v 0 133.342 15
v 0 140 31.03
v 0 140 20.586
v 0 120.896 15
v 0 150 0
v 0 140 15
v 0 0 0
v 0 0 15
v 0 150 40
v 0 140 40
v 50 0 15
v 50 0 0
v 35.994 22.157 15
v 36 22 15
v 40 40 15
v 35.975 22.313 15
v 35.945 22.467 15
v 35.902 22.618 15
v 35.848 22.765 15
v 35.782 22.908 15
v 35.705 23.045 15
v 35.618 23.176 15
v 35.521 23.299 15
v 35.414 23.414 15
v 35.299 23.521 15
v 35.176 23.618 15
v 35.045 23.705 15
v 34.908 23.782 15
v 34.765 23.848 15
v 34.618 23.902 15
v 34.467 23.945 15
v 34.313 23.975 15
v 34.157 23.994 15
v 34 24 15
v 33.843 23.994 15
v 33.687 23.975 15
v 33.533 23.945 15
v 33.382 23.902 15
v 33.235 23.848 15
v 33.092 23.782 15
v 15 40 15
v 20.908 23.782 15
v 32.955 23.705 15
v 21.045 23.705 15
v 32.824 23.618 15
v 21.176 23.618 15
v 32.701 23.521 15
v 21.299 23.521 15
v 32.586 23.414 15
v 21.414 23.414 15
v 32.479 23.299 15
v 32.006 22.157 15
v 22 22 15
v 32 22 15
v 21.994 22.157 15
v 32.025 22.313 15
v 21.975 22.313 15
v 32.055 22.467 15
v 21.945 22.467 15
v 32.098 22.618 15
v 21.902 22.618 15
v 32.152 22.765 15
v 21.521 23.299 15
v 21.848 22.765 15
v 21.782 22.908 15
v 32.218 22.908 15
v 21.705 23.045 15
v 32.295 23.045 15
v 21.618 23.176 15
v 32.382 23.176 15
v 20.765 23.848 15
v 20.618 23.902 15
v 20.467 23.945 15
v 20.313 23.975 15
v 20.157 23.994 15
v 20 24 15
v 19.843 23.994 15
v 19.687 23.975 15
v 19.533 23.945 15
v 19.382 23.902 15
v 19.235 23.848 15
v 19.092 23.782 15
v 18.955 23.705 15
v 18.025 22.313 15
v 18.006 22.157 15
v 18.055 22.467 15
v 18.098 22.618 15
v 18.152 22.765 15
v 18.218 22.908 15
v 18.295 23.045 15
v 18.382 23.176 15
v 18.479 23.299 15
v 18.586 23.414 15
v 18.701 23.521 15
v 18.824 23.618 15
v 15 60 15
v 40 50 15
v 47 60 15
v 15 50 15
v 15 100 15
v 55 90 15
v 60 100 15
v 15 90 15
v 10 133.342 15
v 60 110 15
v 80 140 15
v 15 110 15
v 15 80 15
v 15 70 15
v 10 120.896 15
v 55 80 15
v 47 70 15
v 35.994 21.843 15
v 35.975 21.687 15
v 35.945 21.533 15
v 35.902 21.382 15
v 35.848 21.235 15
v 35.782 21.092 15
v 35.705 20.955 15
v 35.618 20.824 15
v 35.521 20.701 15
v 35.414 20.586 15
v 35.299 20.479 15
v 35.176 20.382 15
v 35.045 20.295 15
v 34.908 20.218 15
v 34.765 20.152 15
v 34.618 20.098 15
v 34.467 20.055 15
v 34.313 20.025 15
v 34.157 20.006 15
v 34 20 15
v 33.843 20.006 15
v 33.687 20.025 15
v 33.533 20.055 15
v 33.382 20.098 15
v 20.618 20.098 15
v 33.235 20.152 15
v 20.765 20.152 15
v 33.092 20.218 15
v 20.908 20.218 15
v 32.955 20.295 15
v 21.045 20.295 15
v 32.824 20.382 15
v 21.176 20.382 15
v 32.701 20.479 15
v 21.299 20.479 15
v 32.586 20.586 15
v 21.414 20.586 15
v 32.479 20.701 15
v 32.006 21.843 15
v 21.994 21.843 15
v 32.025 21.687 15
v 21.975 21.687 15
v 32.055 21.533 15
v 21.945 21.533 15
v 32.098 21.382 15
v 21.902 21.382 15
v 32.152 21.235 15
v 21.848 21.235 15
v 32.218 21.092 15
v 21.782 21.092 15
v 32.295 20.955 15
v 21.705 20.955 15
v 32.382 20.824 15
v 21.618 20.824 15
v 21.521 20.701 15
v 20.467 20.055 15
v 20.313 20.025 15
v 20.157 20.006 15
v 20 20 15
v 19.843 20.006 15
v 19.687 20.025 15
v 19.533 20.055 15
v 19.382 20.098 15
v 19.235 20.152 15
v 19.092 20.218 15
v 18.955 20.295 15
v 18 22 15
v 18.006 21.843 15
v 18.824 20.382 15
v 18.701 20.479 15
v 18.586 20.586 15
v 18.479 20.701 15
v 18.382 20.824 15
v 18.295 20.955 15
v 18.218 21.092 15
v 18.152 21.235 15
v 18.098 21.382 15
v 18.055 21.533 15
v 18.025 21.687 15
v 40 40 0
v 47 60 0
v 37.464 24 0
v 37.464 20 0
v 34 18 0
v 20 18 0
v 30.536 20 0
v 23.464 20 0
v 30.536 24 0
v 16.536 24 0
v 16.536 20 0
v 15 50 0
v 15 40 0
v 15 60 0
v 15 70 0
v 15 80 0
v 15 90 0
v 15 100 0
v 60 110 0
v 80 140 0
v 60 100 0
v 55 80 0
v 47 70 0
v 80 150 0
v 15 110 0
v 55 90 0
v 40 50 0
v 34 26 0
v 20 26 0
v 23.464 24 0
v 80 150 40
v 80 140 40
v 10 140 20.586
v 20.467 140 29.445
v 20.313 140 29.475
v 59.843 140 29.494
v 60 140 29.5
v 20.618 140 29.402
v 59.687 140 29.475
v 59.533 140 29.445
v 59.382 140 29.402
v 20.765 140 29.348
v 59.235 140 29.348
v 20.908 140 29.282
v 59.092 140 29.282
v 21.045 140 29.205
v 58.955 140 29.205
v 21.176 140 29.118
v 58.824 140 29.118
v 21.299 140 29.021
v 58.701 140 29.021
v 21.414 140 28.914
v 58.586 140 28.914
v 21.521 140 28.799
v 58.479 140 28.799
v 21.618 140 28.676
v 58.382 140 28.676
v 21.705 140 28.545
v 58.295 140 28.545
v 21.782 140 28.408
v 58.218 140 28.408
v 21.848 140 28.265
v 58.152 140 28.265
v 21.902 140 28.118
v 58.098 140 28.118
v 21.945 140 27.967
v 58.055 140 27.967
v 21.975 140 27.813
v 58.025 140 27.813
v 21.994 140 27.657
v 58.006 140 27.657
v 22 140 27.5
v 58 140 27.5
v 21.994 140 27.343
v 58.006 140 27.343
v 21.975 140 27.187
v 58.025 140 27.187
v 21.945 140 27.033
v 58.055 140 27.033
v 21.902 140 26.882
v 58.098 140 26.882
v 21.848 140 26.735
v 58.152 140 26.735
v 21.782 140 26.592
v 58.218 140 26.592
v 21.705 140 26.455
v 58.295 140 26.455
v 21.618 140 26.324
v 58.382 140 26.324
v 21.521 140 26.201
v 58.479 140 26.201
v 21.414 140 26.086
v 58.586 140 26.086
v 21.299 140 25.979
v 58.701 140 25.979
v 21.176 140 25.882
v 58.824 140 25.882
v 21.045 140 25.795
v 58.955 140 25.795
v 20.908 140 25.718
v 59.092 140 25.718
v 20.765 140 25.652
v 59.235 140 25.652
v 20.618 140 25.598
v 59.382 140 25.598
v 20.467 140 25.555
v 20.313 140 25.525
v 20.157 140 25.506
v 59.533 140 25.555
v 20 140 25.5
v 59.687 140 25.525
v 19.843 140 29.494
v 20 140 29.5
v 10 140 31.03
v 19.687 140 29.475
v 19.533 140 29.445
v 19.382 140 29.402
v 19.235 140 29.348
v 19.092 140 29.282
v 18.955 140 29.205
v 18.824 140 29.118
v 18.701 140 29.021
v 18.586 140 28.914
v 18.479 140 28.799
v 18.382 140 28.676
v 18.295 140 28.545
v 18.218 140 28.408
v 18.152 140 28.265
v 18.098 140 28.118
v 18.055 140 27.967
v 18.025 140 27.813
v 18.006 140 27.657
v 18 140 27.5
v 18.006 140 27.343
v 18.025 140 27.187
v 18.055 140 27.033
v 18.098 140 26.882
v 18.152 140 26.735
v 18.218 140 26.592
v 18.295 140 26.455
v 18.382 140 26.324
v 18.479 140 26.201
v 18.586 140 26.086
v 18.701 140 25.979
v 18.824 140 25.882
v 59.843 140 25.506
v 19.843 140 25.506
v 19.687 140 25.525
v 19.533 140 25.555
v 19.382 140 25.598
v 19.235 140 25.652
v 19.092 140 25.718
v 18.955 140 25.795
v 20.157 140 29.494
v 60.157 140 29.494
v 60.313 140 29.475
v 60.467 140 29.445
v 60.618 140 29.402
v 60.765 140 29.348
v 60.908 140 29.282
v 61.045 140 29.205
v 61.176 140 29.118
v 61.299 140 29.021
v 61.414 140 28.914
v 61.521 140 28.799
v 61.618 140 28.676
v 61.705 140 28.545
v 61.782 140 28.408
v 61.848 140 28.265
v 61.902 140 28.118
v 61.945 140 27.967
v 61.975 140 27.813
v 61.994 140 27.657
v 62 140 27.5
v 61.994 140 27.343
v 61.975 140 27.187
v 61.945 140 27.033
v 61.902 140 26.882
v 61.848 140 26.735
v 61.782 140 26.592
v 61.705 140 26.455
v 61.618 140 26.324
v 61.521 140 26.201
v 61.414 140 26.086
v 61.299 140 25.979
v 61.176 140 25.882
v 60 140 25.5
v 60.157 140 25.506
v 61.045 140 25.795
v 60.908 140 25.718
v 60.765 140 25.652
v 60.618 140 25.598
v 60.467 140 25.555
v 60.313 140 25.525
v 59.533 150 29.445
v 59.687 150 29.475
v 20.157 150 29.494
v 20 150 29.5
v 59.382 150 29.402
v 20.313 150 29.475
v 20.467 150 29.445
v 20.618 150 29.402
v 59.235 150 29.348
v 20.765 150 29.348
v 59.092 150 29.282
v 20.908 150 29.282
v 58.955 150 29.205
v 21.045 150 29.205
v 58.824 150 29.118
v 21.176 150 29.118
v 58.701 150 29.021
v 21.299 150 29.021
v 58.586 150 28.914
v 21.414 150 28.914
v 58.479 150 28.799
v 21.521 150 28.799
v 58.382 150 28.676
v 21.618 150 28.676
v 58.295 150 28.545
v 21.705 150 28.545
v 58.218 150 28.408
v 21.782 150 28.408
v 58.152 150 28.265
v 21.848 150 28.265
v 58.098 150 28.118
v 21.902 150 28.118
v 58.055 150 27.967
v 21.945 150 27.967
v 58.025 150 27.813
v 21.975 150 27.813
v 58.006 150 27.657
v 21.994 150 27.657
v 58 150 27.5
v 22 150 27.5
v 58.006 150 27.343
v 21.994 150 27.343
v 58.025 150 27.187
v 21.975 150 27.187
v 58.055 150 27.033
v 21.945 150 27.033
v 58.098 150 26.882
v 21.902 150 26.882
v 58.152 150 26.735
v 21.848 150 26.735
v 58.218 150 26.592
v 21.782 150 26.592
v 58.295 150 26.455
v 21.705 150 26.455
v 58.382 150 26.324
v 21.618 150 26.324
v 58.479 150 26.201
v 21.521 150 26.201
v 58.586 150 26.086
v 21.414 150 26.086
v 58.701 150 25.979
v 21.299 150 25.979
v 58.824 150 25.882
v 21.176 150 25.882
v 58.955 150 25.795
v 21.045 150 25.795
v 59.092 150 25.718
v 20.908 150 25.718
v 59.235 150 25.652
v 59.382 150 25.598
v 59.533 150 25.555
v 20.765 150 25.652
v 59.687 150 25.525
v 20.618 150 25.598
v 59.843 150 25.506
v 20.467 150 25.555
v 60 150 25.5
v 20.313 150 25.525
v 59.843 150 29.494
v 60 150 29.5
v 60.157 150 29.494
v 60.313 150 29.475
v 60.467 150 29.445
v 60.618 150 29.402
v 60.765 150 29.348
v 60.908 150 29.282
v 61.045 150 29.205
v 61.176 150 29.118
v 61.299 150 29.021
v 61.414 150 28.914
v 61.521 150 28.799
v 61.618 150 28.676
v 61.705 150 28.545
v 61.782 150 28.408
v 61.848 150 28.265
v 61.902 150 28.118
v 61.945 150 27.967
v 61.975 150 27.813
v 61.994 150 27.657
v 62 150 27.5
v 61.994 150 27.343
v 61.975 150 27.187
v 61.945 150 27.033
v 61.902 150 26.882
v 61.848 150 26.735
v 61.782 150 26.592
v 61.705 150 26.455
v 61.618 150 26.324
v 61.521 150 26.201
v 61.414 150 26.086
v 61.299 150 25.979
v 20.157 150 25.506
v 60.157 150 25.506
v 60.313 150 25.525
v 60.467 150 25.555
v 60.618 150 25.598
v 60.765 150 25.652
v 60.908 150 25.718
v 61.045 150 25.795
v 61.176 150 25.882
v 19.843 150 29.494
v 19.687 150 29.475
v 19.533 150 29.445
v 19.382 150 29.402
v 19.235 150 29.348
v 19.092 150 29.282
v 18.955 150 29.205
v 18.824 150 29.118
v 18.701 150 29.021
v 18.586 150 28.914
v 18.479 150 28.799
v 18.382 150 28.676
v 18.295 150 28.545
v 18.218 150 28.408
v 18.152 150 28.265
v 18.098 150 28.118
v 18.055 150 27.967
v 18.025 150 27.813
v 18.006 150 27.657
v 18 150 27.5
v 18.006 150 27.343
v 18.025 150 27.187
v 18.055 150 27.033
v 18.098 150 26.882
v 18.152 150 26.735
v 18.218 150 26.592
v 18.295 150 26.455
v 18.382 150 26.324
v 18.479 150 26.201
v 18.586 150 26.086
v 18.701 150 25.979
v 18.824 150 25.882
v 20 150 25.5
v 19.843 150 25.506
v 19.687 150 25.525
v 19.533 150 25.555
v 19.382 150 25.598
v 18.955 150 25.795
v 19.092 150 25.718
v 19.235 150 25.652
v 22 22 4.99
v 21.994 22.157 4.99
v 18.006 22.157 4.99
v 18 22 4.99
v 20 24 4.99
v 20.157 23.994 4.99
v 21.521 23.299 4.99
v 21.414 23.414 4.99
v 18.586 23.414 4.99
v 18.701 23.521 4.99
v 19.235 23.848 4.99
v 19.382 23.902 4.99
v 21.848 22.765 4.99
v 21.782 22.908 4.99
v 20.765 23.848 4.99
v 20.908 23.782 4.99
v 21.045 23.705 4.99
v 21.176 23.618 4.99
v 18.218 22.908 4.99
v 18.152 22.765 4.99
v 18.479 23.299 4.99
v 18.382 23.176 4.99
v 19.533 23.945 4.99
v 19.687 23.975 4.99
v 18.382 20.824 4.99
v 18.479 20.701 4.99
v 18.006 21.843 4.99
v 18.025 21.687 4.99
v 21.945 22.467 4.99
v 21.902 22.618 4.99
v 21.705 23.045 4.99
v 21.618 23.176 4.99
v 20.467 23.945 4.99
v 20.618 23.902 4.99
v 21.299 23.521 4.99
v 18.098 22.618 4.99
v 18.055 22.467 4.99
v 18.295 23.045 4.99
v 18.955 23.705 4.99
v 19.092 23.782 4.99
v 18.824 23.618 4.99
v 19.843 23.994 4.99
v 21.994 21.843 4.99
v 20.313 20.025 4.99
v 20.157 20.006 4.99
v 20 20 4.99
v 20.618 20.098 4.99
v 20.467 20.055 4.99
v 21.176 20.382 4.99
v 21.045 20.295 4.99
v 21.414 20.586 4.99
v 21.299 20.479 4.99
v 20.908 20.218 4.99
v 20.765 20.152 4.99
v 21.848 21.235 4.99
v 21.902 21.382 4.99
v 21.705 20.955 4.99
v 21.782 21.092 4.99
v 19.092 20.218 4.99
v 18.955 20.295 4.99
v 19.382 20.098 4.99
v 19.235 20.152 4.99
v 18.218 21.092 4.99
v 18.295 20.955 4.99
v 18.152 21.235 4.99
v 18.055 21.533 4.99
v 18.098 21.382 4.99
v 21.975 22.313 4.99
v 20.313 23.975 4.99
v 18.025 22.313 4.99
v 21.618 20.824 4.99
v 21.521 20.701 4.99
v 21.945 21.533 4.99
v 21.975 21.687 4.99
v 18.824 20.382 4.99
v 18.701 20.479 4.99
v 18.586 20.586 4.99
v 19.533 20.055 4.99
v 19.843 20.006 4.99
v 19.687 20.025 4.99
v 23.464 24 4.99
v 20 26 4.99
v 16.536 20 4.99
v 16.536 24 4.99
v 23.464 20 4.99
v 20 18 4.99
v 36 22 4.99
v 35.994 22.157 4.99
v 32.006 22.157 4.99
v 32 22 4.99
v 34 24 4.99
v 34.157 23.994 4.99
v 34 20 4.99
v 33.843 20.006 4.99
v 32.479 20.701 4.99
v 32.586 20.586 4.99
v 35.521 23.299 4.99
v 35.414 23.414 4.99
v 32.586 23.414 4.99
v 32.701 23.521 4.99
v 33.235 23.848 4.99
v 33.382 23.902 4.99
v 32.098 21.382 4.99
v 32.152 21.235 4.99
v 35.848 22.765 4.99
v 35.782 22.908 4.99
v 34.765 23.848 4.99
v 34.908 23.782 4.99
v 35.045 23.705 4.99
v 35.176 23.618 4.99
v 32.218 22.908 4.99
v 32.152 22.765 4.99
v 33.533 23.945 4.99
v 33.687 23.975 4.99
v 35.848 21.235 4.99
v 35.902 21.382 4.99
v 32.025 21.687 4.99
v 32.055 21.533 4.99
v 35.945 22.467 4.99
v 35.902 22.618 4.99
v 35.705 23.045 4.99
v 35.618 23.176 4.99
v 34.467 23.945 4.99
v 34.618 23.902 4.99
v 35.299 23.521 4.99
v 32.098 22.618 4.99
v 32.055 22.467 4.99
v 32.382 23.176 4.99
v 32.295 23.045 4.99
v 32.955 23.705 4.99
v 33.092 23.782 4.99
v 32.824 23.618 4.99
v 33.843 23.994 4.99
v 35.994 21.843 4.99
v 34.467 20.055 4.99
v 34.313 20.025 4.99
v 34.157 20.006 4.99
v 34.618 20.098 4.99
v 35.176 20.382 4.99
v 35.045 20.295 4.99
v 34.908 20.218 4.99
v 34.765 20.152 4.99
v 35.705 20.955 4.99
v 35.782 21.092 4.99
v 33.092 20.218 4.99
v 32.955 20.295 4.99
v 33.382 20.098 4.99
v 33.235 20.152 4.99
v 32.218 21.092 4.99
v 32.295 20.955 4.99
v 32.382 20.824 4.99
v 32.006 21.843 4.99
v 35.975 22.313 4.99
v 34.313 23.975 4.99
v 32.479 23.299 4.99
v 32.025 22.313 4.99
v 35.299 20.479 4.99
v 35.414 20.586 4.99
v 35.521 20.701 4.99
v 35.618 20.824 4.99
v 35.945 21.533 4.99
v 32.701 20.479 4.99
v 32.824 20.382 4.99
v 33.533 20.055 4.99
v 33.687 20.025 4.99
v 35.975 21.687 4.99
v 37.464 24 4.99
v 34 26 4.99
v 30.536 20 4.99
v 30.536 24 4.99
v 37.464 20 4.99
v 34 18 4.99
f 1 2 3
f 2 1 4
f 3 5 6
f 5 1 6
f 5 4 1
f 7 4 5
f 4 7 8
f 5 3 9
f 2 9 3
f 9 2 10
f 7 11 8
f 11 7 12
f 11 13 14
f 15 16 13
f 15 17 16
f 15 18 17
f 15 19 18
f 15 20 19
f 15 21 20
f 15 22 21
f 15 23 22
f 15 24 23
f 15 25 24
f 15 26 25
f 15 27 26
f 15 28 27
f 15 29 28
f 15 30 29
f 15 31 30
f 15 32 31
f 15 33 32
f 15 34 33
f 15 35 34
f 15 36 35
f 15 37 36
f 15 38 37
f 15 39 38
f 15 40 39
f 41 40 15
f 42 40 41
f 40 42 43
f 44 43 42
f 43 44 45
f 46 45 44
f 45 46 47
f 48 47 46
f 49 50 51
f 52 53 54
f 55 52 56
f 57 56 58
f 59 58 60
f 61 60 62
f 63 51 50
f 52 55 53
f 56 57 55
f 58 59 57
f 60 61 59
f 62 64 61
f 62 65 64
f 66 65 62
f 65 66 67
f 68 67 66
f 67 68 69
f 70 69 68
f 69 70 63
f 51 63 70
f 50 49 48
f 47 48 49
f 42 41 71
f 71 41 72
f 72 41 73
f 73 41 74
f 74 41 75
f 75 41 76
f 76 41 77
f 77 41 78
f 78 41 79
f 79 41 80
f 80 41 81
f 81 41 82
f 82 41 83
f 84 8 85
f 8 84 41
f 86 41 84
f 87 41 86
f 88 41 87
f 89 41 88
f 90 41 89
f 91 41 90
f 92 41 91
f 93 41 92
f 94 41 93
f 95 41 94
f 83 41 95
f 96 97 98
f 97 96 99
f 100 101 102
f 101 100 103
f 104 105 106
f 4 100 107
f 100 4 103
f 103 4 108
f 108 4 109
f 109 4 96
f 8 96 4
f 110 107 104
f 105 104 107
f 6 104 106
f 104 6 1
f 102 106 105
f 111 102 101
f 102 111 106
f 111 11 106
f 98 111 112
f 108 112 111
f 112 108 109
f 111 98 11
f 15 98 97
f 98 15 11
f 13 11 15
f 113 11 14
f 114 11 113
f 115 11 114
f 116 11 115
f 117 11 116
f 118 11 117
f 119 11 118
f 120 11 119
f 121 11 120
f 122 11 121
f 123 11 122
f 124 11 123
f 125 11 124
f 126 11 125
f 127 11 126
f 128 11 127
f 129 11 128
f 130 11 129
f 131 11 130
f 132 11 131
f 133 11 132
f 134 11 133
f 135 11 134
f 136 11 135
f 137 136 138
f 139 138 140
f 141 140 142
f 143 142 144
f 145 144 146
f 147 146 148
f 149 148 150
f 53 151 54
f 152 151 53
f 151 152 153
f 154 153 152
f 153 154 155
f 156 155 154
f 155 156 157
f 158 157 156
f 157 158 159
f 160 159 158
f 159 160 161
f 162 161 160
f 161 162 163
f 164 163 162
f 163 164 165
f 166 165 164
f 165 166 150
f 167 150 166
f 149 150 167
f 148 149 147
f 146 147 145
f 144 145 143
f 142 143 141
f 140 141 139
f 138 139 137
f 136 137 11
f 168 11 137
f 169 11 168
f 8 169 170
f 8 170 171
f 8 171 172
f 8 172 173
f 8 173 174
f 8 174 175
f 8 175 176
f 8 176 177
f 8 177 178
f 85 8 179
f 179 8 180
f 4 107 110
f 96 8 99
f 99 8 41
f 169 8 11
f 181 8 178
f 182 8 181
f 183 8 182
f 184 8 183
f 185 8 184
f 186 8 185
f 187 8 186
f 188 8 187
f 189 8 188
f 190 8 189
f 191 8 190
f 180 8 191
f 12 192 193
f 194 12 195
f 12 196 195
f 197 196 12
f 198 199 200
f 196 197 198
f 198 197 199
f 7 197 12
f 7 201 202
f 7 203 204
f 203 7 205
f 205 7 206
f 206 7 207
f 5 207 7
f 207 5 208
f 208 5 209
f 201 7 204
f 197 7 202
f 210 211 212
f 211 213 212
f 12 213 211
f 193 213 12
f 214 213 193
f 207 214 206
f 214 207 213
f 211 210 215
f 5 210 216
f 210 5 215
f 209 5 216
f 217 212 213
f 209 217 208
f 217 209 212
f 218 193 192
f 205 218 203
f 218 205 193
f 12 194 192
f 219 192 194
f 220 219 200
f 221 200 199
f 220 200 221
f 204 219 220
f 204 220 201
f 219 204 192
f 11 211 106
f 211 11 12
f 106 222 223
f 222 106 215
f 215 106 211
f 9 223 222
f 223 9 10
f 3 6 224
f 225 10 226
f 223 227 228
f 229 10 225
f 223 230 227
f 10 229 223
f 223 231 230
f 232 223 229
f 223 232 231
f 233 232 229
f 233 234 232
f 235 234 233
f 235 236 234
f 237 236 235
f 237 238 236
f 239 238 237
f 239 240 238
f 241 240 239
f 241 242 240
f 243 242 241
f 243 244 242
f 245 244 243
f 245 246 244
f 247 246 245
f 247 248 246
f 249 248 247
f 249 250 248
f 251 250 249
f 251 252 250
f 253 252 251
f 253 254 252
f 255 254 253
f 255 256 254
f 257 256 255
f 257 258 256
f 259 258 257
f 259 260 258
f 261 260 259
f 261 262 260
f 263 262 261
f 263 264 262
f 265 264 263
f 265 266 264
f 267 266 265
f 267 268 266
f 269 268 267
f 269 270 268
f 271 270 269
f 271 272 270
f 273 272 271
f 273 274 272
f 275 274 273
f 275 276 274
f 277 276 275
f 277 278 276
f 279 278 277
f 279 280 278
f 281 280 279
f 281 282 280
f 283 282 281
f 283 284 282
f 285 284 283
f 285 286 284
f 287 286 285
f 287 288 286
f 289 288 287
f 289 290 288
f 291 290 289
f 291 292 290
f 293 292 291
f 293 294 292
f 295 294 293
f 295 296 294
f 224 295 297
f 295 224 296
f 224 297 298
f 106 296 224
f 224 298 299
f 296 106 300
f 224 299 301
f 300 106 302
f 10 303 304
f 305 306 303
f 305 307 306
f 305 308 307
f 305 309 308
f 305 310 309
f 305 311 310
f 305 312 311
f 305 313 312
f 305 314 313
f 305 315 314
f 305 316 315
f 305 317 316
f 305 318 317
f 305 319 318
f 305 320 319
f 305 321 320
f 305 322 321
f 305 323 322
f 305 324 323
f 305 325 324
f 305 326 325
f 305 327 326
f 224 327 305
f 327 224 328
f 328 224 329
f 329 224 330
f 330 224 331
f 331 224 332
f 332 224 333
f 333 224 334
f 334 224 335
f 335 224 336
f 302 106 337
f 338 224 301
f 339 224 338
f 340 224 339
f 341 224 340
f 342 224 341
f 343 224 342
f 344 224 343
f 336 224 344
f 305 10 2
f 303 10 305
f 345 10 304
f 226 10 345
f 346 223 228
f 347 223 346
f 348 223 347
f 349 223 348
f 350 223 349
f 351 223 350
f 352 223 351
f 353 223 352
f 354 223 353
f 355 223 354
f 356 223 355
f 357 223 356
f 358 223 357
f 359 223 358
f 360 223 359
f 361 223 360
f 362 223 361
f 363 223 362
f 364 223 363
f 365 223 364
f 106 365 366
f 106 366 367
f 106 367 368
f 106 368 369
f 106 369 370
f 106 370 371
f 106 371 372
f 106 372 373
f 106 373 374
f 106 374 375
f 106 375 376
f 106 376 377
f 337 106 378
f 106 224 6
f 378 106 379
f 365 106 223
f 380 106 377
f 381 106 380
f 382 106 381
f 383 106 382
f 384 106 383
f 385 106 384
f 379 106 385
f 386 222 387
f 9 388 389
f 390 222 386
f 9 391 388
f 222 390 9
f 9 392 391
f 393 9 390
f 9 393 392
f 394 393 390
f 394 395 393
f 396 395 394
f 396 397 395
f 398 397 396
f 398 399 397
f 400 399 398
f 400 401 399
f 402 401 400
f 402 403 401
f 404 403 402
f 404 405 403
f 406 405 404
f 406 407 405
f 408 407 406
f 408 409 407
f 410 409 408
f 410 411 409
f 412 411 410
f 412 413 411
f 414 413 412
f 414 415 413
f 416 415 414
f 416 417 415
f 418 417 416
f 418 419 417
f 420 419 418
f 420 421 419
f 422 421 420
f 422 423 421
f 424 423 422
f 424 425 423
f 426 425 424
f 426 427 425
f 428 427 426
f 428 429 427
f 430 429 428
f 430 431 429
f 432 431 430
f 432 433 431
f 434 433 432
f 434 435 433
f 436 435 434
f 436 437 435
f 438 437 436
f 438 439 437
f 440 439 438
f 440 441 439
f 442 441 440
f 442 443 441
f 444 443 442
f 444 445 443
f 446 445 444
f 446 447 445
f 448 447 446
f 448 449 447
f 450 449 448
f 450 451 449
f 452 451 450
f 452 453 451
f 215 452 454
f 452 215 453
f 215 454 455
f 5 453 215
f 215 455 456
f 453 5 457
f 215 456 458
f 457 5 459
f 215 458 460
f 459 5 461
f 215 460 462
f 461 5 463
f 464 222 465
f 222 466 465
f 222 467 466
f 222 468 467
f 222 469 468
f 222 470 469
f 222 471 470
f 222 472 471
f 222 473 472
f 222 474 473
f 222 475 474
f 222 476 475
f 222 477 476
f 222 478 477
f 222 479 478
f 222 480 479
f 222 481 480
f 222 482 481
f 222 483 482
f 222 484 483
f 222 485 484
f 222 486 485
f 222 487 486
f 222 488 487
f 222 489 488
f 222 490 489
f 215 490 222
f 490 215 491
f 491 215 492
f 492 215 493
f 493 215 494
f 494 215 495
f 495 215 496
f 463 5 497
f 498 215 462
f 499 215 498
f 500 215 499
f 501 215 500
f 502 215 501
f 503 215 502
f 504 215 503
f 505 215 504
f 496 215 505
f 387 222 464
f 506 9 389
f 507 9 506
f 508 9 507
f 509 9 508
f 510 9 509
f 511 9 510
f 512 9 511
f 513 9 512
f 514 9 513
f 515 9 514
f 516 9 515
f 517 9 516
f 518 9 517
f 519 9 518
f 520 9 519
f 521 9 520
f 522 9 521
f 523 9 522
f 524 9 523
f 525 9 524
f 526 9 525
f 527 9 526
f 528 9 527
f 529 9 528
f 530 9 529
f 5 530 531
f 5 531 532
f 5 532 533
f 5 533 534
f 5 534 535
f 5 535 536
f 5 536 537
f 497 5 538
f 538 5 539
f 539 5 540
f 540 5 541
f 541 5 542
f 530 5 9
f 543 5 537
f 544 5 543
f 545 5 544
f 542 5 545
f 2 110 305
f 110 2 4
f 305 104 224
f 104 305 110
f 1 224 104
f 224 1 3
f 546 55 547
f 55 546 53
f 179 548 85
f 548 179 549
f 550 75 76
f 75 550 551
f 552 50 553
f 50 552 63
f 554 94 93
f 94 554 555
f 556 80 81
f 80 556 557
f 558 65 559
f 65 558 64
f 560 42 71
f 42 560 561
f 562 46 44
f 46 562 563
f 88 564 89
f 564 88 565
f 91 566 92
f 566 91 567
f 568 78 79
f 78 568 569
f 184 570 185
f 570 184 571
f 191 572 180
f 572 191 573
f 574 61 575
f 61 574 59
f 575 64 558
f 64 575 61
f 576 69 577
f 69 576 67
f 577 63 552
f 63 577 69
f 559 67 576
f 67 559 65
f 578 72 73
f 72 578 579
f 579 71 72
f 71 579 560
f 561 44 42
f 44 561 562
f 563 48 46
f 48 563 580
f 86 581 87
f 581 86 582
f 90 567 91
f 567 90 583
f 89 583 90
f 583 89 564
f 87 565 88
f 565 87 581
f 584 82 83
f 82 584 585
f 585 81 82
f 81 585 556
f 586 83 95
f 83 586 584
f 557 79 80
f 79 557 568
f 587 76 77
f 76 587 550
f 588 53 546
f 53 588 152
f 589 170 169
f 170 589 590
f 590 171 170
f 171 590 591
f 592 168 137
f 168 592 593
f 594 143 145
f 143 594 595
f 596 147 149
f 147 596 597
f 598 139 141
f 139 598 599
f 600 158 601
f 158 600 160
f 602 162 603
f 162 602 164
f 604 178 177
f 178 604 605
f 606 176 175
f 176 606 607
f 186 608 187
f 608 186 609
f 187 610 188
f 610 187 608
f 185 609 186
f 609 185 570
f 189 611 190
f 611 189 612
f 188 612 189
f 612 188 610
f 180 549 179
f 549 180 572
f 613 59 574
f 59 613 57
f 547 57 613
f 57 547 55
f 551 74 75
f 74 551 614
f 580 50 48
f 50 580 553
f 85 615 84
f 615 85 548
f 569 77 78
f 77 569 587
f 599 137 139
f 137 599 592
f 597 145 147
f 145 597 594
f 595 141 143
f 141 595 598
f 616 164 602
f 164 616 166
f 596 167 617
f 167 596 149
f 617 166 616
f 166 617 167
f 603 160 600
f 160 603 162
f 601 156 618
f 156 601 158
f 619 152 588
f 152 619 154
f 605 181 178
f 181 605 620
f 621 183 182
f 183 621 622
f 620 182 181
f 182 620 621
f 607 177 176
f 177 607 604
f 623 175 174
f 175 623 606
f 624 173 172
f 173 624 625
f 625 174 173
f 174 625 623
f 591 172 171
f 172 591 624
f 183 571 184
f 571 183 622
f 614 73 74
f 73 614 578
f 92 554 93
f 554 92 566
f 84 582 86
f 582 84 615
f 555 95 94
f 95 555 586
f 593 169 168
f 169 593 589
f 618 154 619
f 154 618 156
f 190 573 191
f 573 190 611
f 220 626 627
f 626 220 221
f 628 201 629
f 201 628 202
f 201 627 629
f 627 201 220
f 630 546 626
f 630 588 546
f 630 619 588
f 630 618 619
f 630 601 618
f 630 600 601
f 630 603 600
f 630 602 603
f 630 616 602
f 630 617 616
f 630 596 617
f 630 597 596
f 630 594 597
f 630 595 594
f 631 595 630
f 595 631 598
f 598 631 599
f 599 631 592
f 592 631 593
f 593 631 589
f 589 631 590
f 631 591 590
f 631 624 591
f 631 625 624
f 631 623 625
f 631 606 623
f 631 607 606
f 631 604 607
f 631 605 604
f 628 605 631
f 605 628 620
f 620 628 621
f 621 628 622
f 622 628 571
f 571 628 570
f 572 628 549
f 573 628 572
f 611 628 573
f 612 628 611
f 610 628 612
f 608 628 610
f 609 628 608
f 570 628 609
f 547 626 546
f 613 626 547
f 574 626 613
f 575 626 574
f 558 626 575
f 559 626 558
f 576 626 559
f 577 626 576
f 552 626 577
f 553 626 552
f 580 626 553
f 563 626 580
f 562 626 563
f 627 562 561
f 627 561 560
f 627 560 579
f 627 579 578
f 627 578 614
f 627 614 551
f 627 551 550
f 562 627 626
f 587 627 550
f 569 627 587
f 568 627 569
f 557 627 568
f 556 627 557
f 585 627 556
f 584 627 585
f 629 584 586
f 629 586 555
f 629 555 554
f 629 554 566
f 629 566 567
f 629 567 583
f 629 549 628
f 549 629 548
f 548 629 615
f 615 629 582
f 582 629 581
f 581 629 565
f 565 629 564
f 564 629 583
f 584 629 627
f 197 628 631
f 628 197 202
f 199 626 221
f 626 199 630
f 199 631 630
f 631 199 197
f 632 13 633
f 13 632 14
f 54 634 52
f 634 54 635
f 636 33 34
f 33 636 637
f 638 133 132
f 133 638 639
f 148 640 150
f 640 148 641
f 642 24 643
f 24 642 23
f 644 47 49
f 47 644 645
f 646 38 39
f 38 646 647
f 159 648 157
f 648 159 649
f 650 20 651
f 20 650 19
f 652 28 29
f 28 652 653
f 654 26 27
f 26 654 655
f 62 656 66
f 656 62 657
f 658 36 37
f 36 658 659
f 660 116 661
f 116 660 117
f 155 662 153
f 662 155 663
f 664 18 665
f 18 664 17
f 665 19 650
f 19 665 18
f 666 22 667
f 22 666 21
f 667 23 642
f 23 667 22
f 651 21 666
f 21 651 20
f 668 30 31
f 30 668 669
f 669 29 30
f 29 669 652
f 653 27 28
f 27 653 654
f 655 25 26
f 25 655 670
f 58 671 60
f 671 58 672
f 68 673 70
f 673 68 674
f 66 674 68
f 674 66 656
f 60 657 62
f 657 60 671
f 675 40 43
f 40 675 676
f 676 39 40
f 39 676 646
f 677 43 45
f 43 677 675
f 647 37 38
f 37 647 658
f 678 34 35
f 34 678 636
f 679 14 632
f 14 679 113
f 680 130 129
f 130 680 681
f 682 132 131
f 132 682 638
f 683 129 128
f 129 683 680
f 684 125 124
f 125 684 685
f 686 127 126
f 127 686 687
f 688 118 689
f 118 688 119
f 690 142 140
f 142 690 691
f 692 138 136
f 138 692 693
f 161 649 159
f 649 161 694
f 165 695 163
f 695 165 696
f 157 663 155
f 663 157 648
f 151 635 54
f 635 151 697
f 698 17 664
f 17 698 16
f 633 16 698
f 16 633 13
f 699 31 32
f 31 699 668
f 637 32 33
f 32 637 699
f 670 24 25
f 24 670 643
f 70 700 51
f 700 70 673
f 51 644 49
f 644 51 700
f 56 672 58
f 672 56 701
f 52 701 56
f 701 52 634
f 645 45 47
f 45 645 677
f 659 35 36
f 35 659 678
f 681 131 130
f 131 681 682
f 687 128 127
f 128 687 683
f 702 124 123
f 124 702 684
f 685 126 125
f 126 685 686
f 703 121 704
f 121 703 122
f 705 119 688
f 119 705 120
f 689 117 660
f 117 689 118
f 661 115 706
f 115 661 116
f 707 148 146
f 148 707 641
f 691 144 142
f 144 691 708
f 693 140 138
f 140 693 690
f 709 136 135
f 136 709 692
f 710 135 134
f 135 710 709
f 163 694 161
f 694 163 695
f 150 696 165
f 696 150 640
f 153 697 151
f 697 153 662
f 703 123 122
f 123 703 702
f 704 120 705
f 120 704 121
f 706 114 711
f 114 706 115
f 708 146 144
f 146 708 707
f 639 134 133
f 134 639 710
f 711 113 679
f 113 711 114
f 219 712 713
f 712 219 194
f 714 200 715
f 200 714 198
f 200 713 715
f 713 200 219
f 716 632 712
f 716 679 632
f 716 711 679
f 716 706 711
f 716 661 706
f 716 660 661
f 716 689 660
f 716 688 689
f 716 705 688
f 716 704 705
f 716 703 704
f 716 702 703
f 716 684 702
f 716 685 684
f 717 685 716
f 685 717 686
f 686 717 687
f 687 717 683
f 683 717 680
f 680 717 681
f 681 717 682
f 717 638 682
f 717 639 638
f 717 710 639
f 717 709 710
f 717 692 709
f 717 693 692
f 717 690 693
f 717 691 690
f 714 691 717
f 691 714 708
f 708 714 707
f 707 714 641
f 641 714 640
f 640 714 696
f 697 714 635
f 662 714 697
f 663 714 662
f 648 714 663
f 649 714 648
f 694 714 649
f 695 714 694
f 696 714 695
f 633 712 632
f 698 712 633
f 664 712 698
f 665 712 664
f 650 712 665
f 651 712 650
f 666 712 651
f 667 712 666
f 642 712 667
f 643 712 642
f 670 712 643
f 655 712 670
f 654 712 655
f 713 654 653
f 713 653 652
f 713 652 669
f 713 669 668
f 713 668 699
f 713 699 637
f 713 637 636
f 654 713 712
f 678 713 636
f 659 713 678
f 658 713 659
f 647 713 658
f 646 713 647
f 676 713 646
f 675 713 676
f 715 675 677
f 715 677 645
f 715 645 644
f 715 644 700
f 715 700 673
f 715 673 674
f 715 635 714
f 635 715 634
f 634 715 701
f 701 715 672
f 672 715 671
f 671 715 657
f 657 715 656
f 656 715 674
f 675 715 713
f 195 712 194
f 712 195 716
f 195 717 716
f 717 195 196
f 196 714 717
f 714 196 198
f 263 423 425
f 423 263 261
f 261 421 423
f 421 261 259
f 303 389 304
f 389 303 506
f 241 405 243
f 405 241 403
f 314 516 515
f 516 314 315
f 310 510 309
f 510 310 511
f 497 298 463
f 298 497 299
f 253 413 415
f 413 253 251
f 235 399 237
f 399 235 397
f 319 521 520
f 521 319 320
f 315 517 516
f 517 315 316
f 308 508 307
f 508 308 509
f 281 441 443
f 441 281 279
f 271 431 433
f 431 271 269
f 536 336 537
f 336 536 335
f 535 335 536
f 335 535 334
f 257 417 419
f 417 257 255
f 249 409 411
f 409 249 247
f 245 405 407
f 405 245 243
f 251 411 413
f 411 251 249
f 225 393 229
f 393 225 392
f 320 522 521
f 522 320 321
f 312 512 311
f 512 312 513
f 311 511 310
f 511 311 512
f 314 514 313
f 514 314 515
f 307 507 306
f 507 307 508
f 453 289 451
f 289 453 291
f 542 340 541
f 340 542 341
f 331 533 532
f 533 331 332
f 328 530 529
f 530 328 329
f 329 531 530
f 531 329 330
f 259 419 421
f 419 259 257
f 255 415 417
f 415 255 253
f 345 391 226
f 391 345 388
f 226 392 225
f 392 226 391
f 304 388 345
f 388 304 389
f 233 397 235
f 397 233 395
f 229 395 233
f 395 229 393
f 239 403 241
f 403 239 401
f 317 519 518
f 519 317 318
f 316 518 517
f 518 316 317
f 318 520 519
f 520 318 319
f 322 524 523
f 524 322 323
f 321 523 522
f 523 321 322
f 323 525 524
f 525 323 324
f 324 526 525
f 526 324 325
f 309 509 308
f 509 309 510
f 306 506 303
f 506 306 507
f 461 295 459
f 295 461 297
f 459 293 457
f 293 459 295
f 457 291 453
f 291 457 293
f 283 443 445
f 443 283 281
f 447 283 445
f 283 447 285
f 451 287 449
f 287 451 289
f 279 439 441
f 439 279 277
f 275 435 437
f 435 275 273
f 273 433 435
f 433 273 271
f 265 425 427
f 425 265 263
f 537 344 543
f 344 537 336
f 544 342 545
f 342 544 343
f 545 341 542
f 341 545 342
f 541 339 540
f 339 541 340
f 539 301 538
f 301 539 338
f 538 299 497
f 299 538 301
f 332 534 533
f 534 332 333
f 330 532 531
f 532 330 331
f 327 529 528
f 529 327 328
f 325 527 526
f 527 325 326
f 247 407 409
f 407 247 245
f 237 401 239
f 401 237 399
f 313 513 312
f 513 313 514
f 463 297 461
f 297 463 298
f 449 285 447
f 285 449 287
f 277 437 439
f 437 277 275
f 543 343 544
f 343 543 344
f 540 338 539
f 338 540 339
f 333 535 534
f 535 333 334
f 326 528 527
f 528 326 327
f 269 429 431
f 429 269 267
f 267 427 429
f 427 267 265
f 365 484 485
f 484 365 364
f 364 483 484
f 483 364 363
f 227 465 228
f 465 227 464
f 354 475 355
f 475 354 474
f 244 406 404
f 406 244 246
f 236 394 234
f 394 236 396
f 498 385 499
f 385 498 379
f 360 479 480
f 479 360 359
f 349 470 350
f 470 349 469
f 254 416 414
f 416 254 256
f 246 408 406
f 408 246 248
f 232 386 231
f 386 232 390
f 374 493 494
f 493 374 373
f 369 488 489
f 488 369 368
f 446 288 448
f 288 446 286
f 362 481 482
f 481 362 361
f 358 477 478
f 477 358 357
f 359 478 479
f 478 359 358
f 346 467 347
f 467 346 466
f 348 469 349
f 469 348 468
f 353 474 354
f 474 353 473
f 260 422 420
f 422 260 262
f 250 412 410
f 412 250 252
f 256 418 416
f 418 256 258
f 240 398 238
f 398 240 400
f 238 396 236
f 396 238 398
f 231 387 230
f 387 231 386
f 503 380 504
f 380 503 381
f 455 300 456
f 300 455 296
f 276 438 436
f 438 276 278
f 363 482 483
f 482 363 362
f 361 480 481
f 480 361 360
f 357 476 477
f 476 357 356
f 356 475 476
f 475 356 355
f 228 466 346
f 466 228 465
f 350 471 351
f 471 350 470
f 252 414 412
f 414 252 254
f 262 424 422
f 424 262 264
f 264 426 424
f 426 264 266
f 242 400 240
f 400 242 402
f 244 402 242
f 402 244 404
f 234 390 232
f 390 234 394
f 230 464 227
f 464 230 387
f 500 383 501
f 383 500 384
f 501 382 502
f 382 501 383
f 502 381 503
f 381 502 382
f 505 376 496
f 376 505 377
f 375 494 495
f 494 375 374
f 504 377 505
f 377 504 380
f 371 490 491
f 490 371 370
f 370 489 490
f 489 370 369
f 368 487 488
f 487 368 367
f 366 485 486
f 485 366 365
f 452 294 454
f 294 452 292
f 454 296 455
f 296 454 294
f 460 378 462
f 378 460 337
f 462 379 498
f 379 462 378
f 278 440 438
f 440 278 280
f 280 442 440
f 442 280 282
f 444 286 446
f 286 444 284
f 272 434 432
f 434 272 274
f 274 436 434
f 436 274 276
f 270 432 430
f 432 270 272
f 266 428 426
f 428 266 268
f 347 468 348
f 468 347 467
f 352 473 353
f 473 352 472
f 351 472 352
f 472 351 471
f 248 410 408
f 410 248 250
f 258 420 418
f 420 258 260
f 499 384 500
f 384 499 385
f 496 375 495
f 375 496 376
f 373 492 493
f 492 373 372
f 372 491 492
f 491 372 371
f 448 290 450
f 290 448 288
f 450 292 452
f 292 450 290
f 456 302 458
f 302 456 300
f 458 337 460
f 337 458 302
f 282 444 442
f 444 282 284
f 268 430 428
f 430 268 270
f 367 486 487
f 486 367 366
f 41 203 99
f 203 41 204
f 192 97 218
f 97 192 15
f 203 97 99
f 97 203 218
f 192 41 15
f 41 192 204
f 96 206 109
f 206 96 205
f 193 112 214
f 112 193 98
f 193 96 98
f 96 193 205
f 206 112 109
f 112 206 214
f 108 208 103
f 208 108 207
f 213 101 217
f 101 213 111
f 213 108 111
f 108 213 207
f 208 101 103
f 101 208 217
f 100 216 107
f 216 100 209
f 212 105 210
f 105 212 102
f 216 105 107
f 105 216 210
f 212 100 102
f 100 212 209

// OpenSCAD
/* telescope-drawer-thing.scad
Author: andimoto@posteo.de
----------------------------
*/

$fn=80;
extra = 0.01;

drawerPlateThick = 20;
mountTopThickness = 10;

lowMount_x = 50;
topMount_x = 80;
mountThickness = 15;

innerDrawerHeight = 130;
mountHeight = innerDrawerHeight + drawerPlateThick - mountTopThickness;
topMountPlateThickness = 25;


module tele_holder_raw()
{
  union()
  {
    hull()
    {
      cube([lowMount_x,0.01,mountThickness]);

      translate([0,mountHeight,0])
        cube([topMount_x,0.01,mountThickness]);
    }
    translate([0,mountHeight,0])
    cube([topMount_x,mountTopThickness,mountThickness+topMountPlateThickness]);

    translate([0,125,8])
    rotate([40,0,0])
    cube([10,30,8]);

  }
}


/* tele_holder_raw(); */
module tele_holder2_raw()
{
  cube([lowMount_x,mountHeight,mountThickness]);
}

screw1dia=4;
lowScrewMoveY = 22;

module tele_holder2()
{
  difference()
  {
    tele_holder_raw();


    translate([20,lowScrewMoveY,-extra])
    union()
    {
      cylinder(r=screw1dia/2,h=mountThickness+extra*2);
      rotate([0,0,30])
      cylinder(r=8/2,h=5,$fn=6);
    }

    translate([20+14,lowScrewMoveY,-extra])
    {
      cylinder(r=screw1dia/2,h=mountThickness+extra*2);
      rotate([0,0,30])
      cylinder(r=8/2,h=5,$fn=6);
    }

    translate([20,mountHeight+mountTopThickness+extra,mountThickness + topMountPlateThickness/2])
    rotate([90,0,0])
    cylinder(r=screw1dia/2,h=mountThickness+extra*2);

    translate([topMount_x-20,mountHeight+mountTopThickness+extra,mountThickness + topMountPlateThickness/2])
    rotate([90,0,0])
    cylinder(r=screw1dia/2,h=mountThickness+extra*2);

    translate([15,40,-extra])
    cube([25,10,mountThickness+extra*2]);

    translate([15,60,-extra])
    cube([32,10,mountThickness+extra*2]);

    translate([15,80,-extra])
    cube([40,10,mountThickness+extra*2]);

    translate([15,100,-extra])
    cube([45,10,mountThickness+extra*2]);
  }
}



tele_holder2();
